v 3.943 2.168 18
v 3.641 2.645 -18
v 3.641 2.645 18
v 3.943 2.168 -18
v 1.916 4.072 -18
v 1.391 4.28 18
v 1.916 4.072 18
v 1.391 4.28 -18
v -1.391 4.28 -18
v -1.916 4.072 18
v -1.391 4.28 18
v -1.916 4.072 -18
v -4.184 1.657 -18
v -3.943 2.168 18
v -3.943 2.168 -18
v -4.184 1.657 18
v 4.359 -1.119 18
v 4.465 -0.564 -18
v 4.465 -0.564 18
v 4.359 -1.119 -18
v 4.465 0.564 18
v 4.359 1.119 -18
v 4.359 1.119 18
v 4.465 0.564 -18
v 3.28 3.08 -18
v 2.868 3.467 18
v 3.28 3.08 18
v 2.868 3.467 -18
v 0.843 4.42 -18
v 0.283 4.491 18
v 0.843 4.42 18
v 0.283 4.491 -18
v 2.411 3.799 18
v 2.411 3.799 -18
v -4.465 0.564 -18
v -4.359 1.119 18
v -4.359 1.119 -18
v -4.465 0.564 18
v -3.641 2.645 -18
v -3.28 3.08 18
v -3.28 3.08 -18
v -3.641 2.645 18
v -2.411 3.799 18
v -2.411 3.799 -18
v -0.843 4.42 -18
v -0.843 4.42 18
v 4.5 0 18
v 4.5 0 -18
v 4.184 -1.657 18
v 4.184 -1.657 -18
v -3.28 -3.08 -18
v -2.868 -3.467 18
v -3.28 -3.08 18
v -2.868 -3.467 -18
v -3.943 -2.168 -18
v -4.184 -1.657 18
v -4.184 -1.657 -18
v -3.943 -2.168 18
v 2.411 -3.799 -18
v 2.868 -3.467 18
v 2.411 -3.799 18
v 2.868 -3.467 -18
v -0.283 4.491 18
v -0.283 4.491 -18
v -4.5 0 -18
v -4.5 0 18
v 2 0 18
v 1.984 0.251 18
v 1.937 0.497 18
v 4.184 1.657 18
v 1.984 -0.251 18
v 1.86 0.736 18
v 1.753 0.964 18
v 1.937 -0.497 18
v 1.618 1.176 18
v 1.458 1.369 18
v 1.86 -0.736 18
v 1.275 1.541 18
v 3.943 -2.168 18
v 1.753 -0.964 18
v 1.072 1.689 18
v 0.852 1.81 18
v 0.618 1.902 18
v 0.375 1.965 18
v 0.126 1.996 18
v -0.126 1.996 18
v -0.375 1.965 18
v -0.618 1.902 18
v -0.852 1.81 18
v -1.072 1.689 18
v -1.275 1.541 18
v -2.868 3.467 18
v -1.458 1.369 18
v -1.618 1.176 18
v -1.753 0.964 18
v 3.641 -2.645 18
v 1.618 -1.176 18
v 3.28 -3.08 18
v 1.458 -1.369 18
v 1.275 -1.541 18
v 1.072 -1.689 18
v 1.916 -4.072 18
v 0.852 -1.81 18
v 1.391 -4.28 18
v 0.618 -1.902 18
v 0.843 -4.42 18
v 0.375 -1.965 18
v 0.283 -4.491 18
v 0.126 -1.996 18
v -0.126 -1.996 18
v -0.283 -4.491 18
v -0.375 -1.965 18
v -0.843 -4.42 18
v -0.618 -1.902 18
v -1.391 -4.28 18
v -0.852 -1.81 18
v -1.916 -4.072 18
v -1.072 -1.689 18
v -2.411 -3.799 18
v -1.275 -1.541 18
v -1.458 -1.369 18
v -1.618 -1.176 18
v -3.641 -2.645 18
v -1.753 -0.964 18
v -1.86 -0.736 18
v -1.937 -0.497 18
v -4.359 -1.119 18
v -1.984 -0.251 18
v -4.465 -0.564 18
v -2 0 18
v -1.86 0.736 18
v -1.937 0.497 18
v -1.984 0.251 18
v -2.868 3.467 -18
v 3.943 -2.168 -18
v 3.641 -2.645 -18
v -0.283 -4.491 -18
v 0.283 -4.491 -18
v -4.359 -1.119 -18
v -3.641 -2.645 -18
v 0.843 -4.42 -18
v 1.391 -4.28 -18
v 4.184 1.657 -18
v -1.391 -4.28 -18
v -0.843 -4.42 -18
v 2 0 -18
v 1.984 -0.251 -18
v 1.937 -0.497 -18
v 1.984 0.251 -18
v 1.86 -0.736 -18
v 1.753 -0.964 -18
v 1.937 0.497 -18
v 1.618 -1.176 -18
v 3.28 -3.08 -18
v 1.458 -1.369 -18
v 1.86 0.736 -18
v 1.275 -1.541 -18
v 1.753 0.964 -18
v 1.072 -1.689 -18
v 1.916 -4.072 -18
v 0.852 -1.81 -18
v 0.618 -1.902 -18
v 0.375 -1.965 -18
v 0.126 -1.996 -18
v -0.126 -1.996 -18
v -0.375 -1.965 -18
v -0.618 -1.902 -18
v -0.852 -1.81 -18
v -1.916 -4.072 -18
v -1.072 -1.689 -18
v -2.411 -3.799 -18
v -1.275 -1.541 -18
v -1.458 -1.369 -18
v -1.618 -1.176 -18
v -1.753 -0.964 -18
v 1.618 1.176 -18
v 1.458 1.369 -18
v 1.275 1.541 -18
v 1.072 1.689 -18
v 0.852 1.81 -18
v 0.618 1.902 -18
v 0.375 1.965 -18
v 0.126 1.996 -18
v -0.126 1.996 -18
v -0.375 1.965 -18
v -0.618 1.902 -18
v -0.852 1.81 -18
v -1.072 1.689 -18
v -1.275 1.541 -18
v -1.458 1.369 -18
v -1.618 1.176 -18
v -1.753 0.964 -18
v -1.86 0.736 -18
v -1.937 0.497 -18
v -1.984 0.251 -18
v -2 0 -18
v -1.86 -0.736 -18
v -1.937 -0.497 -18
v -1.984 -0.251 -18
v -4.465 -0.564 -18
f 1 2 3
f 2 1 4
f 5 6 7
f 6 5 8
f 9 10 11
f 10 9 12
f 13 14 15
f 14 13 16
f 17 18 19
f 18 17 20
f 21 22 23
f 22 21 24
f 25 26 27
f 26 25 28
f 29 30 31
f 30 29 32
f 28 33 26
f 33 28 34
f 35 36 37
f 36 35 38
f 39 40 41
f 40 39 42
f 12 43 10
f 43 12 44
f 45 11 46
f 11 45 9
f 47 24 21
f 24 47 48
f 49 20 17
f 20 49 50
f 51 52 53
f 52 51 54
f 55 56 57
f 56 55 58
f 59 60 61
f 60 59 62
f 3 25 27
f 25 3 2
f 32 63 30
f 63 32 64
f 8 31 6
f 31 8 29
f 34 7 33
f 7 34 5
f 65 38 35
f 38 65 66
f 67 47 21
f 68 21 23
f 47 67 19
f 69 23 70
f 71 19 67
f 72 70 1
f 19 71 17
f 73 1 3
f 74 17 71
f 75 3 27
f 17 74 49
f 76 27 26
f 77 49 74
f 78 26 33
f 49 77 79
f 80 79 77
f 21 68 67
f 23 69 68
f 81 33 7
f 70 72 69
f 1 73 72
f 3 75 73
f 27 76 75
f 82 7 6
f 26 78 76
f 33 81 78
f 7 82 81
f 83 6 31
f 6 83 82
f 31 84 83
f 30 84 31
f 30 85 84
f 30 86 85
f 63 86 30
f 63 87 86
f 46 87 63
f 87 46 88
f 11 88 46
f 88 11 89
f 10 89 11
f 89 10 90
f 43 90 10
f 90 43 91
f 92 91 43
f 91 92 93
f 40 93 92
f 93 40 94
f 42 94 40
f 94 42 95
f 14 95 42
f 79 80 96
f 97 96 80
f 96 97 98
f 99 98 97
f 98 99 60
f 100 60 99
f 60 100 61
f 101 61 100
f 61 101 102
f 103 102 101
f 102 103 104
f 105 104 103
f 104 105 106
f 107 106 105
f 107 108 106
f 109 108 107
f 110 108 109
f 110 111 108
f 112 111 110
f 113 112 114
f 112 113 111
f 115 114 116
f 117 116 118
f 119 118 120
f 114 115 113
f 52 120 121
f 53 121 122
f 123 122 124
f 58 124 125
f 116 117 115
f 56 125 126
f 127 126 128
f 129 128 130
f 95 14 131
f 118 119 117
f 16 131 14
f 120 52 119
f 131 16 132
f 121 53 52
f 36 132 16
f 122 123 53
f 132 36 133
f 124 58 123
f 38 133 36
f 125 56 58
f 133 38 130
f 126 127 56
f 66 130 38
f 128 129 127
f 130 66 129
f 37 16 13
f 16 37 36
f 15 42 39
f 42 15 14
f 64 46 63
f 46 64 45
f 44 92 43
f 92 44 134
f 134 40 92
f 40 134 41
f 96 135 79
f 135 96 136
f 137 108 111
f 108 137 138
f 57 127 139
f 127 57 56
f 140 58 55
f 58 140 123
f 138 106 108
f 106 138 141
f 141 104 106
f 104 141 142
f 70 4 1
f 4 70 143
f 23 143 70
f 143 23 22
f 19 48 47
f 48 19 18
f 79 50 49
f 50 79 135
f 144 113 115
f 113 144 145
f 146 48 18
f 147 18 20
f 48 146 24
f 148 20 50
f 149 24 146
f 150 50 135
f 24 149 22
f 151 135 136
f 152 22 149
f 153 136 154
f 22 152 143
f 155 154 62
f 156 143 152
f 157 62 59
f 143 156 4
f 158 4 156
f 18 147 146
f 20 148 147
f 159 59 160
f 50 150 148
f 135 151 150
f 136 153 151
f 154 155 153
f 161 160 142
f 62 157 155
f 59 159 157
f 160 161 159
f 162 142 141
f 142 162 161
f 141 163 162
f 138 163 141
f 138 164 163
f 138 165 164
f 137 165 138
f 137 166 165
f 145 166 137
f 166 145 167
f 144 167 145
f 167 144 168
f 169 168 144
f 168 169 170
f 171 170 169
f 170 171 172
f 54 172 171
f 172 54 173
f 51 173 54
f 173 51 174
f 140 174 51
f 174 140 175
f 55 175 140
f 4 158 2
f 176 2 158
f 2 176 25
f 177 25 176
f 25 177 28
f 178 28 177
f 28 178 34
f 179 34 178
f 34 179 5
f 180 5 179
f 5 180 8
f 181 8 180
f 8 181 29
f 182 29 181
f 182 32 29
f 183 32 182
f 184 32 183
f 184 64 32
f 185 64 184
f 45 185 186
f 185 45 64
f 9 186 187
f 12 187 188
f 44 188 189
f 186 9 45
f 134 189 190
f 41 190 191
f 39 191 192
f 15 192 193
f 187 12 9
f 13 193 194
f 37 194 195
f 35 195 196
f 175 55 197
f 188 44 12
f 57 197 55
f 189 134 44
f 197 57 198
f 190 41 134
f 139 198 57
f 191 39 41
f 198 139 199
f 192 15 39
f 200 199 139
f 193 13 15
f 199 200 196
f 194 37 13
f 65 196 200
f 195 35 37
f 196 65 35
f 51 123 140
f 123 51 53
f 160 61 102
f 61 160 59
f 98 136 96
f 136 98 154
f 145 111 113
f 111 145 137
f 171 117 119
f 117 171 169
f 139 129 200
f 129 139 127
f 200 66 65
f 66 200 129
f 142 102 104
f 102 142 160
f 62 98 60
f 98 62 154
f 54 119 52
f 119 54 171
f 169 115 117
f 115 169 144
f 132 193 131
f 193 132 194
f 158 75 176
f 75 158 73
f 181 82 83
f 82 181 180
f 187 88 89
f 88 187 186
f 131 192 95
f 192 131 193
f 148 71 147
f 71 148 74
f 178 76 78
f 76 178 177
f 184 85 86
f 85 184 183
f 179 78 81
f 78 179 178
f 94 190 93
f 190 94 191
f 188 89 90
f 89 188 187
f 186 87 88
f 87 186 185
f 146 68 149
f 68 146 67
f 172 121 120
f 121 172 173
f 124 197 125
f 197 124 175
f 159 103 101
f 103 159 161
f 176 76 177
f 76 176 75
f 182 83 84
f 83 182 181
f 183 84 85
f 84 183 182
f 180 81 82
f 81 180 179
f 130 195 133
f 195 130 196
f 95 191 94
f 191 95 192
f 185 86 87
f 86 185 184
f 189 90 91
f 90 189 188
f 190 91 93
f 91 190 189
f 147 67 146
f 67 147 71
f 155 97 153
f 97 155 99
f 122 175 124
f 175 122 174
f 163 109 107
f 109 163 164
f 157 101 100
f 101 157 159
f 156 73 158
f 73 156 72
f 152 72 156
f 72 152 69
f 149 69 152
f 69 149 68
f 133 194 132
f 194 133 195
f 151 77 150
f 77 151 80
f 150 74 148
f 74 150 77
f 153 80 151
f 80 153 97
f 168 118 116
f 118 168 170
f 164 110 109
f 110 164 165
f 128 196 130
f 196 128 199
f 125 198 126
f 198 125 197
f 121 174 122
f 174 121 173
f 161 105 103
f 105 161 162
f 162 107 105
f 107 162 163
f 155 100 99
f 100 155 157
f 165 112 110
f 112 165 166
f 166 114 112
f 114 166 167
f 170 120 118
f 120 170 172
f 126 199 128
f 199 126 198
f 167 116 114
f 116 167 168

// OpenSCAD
$fn = 50;


difference() {
	union() {
		translate(v = [0, 0, -18.0000000000]) {
			cylinder(h = 36, r = 4.5000000000);
		}
	}
	union() {
		translate(v = [0, 0, -100.0000000000]) {
			cylinder(h = 200, r = 2);
		}
	}
}
